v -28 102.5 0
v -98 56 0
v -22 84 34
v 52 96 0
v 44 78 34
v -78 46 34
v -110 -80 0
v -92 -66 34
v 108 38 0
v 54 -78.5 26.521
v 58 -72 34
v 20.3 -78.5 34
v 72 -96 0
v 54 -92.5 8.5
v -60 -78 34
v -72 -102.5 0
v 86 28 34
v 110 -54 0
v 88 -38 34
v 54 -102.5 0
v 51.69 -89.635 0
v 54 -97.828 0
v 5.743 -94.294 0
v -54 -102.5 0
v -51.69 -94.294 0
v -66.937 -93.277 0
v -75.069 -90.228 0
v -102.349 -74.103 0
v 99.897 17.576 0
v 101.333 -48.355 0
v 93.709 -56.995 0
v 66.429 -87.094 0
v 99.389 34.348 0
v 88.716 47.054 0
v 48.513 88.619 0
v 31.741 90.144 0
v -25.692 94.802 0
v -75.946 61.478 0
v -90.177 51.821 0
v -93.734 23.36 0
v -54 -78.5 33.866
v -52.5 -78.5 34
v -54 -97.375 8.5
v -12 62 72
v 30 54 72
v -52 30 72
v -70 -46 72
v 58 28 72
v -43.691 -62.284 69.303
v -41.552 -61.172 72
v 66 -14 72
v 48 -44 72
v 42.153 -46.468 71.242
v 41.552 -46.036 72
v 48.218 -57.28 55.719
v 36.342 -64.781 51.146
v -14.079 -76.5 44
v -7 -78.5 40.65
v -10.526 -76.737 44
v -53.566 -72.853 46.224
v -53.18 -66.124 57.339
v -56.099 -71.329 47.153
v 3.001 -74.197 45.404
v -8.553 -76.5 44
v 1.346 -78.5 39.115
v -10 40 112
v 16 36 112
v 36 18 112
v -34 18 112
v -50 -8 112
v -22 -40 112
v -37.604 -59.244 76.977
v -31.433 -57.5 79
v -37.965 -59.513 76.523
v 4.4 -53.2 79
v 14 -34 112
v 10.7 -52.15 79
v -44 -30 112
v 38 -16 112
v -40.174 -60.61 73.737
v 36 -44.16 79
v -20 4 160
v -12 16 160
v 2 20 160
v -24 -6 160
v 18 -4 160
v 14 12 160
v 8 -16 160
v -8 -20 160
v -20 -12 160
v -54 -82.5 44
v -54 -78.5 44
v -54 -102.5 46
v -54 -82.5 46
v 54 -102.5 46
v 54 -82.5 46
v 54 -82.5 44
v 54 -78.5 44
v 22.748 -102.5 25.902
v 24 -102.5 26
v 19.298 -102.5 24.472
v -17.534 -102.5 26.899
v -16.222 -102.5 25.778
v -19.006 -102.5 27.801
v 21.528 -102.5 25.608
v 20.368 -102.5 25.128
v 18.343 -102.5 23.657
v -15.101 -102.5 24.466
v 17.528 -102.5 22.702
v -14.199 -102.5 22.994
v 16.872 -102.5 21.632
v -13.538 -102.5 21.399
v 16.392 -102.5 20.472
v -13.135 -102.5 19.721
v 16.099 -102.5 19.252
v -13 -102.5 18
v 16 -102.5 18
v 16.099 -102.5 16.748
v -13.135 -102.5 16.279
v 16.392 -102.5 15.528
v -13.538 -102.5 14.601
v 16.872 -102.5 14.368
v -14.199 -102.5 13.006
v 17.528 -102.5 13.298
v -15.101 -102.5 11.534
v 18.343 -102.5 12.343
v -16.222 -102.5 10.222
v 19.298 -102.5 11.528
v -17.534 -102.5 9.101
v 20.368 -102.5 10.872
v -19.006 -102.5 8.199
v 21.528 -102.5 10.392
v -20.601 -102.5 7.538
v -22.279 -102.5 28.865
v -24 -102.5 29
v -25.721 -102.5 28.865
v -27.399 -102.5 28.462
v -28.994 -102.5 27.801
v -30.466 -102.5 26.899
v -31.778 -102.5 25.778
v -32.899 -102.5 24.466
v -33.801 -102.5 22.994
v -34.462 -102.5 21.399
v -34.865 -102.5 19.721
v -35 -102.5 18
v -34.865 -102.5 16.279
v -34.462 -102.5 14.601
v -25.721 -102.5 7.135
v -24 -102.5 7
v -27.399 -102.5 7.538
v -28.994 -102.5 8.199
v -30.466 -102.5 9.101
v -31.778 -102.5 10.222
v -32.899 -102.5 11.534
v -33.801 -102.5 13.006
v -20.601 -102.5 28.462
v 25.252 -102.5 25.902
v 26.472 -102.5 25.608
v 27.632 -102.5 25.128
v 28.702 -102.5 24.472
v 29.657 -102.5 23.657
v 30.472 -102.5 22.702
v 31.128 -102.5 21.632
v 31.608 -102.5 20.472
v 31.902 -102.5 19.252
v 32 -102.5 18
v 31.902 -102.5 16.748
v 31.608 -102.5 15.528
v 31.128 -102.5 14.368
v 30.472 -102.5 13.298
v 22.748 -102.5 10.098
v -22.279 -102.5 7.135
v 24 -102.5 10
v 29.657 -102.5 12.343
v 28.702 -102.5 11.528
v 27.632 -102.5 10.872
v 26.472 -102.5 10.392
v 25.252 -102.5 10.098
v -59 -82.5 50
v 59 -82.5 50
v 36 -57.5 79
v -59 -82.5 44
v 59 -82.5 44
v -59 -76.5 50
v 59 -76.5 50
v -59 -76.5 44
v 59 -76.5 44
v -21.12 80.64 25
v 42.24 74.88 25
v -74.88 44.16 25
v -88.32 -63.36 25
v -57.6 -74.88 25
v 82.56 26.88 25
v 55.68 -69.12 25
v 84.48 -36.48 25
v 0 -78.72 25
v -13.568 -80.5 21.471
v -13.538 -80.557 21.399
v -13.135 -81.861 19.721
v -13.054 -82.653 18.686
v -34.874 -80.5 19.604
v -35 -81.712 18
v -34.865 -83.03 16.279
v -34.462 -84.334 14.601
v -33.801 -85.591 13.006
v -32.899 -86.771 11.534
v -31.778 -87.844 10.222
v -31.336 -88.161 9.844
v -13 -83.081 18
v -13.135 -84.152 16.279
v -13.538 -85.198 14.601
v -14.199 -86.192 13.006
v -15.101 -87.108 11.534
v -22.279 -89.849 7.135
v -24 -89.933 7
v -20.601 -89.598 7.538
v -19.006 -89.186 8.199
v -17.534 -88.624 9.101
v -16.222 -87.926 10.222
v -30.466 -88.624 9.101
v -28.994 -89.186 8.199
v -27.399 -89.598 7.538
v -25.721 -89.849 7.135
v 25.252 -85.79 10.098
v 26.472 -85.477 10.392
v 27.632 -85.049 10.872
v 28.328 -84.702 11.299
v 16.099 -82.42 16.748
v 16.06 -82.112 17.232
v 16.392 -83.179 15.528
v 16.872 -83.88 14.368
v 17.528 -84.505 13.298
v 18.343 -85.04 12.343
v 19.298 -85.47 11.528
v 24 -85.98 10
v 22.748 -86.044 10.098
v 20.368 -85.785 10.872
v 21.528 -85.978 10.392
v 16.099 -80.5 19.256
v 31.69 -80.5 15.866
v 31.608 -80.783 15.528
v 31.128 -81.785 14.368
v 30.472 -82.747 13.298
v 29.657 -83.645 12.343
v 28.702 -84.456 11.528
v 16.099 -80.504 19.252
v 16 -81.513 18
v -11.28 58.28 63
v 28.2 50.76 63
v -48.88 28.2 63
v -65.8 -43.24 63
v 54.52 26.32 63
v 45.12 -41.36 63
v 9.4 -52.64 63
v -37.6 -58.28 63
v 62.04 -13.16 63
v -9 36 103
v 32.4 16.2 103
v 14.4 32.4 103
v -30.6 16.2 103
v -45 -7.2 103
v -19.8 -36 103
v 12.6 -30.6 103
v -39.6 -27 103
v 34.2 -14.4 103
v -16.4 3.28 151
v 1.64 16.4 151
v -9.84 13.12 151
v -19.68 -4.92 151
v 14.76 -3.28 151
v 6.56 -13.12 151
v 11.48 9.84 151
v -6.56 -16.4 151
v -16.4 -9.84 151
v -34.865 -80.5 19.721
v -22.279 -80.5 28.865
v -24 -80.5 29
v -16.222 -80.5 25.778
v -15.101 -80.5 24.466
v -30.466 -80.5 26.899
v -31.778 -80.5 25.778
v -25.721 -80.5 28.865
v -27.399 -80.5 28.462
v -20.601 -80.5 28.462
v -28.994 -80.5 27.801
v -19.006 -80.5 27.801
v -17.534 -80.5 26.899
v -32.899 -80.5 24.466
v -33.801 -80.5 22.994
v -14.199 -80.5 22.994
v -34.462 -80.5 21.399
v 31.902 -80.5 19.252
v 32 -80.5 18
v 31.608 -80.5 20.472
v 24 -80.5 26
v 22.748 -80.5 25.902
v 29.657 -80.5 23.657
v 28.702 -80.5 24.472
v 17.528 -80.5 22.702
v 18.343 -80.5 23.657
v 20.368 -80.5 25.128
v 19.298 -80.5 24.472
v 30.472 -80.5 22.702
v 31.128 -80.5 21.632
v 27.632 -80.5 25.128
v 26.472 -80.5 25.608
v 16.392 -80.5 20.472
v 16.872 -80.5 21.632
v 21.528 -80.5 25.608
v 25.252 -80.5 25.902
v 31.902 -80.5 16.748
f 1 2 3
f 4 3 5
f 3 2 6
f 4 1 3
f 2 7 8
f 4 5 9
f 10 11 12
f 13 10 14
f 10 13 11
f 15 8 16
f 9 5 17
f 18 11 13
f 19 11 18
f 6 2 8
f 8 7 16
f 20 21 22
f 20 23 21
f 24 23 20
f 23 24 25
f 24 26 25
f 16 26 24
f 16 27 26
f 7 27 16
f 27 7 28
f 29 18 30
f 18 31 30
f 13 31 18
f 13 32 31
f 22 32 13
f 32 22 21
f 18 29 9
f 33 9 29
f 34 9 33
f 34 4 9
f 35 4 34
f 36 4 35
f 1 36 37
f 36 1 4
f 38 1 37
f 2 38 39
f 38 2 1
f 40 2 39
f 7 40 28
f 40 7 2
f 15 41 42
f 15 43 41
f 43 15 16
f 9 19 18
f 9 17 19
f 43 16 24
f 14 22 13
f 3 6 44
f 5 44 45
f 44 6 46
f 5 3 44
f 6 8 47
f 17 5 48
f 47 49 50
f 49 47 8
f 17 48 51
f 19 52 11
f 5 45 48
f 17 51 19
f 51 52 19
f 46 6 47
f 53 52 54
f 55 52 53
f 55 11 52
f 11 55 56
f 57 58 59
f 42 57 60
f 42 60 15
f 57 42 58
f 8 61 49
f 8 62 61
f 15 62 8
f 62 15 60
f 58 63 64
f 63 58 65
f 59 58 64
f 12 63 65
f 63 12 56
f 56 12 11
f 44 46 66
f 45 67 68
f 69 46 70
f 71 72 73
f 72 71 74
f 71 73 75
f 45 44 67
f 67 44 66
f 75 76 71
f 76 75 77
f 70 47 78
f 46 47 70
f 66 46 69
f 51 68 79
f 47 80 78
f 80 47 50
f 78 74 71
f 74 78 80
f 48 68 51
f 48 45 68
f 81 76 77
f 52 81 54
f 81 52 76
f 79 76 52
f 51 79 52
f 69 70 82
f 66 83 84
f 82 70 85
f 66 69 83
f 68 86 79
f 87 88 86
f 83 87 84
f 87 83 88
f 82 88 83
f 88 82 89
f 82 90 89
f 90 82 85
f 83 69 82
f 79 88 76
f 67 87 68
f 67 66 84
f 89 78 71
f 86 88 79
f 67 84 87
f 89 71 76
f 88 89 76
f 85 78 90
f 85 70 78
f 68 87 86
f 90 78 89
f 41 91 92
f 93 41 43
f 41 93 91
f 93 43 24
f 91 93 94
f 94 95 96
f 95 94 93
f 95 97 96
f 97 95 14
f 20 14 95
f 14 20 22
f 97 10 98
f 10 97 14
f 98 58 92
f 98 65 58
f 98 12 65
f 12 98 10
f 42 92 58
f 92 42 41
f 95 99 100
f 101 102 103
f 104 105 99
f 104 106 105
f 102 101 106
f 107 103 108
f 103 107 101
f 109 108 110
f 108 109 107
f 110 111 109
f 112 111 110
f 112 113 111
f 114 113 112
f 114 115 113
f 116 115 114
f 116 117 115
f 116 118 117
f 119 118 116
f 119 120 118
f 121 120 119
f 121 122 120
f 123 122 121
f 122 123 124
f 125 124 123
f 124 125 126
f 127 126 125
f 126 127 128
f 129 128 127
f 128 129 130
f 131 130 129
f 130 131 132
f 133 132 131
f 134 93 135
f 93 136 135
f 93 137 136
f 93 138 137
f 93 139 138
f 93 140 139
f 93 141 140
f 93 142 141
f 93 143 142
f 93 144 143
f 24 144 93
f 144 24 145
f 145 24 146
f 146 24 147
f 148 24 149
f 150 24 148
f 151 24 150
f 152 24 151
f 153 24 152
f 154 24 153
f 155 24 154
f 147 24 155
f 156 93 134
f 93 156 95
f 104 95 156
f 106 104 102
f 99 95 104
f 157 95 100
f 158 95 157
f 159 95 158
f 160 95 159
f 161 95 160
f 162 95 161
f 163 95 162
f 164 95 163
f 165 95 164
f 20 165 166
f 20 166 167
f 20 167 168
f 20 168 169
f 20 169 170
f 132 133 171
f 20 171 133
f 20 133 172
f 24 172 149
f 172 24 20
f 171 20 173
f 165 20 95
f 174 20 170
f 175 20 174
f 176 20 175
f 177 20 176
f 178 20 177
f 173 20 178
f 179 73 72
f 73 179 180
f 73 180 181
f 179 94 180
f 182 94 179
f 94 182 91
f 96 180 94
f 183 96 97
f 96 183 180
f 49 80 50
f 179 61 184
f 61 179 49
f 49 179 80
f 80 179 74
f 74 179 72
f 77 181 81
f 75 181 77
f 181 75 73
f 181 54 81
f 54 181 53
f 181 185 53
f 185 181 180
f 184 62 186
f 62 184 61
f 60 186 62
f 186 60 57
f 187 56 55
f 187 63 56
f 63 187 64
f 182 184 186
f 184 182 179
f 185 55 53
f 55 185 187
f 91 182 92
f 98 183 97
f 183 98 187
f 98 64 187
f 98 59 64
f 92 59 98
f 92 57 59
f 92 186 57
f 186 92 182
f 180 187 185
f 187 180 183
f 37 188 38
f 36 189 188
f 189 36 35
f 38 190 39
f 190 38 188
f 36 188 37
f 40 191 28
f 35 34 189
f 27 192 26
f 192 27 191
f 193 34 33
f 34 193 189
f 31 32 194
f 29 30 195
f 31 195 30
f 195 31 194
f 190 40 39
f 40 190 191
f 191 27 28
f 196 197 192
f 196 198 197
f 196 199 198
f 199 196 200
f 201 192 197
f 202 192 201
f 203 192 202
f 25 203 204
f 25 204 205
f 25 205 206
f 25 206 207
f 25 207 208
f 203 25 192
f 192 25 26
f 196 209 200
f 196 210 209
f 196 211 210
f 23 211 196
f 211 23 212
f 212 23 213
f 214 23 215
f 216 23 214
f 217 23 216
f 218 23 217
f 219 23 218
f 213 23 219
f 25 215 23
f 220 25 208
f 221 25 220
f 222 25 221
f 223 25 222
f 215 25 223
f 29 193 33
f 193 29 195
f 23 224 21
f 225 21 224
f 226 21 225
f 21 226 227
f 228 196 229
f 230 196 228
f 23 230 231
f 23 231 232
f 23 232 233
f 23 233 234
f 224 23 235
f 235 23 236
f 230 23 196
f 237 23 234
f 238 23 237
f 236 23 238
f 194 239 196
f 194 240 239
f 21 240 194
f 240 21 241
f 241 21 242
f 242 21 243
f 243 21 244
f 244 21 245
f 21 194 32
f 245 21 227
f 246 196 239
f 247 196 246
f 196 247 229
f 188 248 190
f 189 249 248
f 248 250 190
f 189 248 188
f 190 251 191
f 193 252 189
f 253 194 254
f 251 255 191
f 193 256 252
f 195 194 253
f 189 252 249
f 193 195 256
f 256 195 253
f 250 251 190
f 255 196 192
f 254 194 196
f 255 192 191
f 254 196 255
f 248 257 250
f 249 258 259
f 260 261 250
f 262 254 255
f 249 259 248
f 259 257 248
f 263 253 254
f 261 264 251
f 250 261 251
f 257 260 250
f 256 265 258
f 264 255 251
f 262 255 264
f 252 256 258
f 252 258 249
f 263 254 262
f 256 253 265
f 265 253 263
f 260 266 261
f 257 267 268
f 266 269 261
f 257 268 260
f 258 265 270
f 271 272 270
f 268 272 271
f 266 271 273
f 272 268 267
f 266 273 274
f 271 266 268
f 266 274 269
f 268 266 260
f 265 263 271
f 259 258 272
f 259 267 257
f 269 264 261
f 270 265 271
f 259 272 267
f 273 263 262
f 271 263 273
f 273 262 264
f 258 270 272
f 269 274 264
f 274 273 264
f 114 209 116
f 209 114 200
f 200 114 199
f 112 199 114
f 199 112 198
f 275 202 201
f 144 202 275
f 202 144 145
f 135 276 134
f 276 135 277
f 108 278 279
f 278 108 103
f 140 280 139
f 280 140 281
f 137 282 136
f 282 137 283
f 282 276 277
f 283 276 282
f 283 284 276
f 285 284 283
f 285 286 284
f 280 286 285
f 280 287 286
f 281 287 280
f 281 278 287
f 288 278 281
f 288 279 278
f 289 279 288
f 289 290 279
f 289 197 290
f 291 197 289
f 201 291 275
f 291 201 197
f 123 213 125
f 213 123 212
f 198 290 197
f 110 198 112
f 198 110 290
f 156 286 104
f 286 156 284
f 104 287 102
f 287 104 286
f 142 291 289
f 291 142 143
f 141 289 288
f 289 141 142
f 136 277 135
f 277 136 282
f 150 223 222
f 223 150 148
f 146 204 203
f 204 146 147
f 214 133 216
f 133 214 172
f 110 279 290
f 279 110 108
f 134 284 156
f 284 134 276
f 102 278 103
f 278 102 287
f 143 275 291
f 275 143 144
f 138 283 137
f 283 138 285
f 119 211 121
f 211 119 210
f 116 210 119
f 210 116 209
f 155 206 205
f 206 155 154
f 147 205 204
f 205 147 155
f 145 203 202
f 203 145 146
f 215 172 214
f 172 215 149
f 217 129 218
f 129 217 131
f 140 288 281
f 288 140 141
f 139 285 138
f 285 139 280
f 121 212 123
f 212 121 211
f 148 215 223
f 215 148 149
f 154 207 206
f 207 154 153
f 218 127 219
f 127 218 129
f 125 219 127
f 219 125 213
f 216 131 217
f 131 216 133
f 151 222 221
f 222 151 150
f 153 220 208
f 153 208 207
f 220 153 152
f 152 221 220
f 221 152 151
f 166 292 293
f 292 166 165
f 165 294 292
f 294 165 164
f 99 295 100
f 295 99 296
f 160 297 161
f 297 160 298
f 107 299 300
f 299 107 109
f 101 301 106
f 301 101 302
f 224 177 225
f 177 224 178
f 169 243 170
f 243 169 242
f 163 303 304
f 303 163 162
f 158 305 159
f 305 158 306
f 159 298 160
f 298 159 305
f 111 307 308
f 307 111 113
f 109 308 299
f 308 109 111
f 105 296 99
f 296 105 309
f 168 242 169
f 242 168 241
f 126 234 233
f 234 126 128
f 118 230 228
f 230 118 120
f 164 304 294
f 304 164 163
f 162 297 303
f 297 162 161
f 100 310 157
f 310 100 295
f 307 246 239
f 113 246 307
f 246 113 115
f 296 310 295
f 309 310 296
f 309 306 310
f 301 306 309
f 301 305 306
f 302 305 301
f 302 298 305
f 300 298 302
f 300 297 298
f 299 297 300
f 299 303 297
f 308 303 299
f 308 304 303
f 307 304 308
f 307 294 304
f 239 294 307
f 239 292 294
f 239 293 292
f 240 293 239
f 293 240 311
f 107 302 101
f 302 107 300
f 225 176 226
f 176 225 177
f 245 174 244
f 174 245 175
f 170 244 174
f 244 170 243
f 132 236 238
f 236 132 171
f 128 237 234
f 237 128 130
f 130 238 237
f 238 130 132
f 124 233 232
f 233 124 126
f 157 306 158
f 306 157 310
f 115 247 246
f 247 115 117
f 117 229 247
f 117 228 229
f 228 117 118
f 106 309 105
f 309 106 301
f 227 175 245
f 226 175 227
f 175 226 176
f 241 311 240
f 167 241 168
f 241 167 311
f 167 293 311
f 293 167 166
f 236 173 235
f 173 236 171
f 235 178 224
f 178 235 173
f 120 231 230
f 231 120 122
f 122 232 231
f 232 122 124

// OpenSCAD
// V2 hollow low-poly mountain cover for housing DCC-EX electronics on one HexTrack tile.
// This version uses one continuous faceted shell instead of overlapping cone pieces.

/* [Output] */
show_build_volume = false; // [true, false]
show_hex_tile_footprint = false; // [true, false]

/* [Overall Size] */
base_width = 220; // [120:1:232]
base_depth = 205; // [120:1:232]
mountain_height = 160; // [80:1:220]
wall_thickness = 2.6; // [1.2:0.1:5]
base_rim_height = 5; // [0:0.5:15]

/* [Cable Exits] */
cable_side = "front"; // [front, back, left, right]
mains_hole_diameter = 22; // [10:1:35]
low_voltage_hole_diameter = 16; // [6:1:30]
cable_hole_z = 18; // [8:1:45]
cable_hole_spacing = 48; // [25:1:90]
cable_panel_width = 108; // [70:1:150]
cable_panel_height = 46; // [30:1:75]
cable_panel_depth = 24; // [10:1:45]

/* [Mountain Shape] */
facet_count = 9; // [6:1:14]

/* [Reference] */
hex_flat_to_flat = 248;
printer_volume = 232;

function side_angle(name) =
    name == "front" ? 0 :
    name == "back" ? 180 :
    name == "left" ? -90 : 90;
function scale_profile(profile, sx, sy, z_shift = 0) =
    [for (p = profile) [p[0] * sx, p[1] * sy, p[2] + z_shift]];

base_profile = [
    [-110, -80, 0],
    [-72, -102.5, 0],
    [8, -102.5, 0],
    [72, -96, 0],
    [110, -54, 0],
    [108, 38, 0],
    [52, 96, 0],
    [-28, 102.5, 0],
    [-98, 56, 0]
];

profile_1 = [
    [-92, -66, 34],
    [-60, -78, 34],
    [0, -82, 34],
    [58, -72, 34],
    [88, -38, 34],
    [86, 28, 34],
    [44, 78, 34],
    [-22, 84, 34],
    [-78, 46, 34]
];

profile_2 = [
    [-70, -46, 72],
    [-40, -62, 72],
    [10, -56, 72],
    [48, -44, 72],
    [66, -14, 72],
    [58, 28, 72],
    [30, 54, 72],
    [-12, 62, 72],
    [-52, 30, 72]
];

profile_3 = [
    [-44, -30, 112],
    [-22, -40, 112],
    [14, -34, 112],
    [38, -16, 112],
    [36, 18, 112],
    [16, 36, 112],
    [-10, 40, 112],
    [-34, 18, 112],
    [-50, -8, 112]
];

profile_4 = [
    [-20, -12, mountain_height],
    [-8, -20, mountain_height],
    [8, -16, mountain_height],
    [18, -4, mountain_height],
    [14, 12, mountain_height],
    [2, 20, mountain_height],
    [-12, 16, mountain_height],
    [-20, 4, mountain_height],
    [-24, -6, mountain_height]
];

module profile_poly(profile) {
    polyhedron(
        points = concat(profile, [[0, 0, profile[0][2]]]),
        faces = [
            [for (i = [0 : len(profile) - 1]) i],
            for (i = [0 : len(profile) - 1])
                [len(profile), i, (i + 1) % len(profile)]
        ],
        convexity = 4
    );
}

module shell_from_profiles(profiles) {
    for (i = [0 : len(profiles) - 2])
        hull() {
            profile_poly(profiles[i]);
            profile_poly(profiles[i + 1]);
        }
}

module cable_exit_panel() {
    rotate([0, 0, side_angle(cable_side)])
        translate([0, -base_depth / 2 + cable_panel_depth / 2, cable_panel_height / 2])
            cube([cable_panel_width, cable_panel_depth, cable_panel_height], center = true);
}

module panel_overburden() {
    rotate([0, 0, side_angle(cable_side)])
        hull() {
            translate([0, -base_depth / 2 + cable_panel_depth - 1, cable_panel_height + 1])
                cube([cable_panel_width + 10, 6, 6], center = true);
            translate([0, -base_depth / 2 + 56, 74])
                cube([72, 22, 10], center = true);
        }
}

module mountain_outer() {
    union() {
        shell_from_profiles([base_profile, profile_1, profile_2, profile_3, profile_4]);
        cable_exit_panel();
        panel_overburden();
    }
}

module mountain_inner_cutout() {
    translate([0, 0, -base_rim_height - 4])
        shell_from_profiles([
            scale_profile(base_profile, (base_width - wall_thickness * 2) / base_width, (base_depth - wall_thickness * 2) / base_depth),
            scale_profile(profile_1, 0.96, 0.96),
            scale_profile(profile_2, 0.94, 0.94),
            scale_profile(profile_3, 0.90, 0.90),
            scale_profile(profile_4, 0.82, 0.82)
        ]);
}

module cable_hole(x_offset, diameter) {
    rotate([0, 0, side_angle(cable_side)])
        translate([x_offset, -base_depth / 2 - 3, cable_hole_z])
            rotate([90, 0, 0])
                cylinder(d = diameter, h = cable_panel_depth + 26, center = true, $fn = 40);
}

module cable_holes() {
    cable_hole(-cable_hole_spacing / 2, mains_hole_diameter);
    cable_hole(cable_hole_spacing / 2, low_voltage_hole_diameter);
}

module bottom_opening() {
    translate([0, 0, -base_rim_height - 20])
        cube([base_width * 2, base_depth * 2, 40], center = true);
}

module hollow_mountain_cover() {
    difference() {
        mountain_outer();
        mountain_inner_cutout();
        cable_holes();
        bottom_opening();
    }
}

module hex_tile_footprint() {
    hex_radius = hex_flat_to_flat / sqrt(3);
    points = [for (i = [0:5]) [hex_radius * cos(60 * i), hex_radius * sin(60 * i)]];

    color([0.2, 0.5, 0.9, 0.18])
        translate([0, 0, -0.2])
            linear_extrude(height = 0.2)
                polygon(points);
}

module build_volume_preview() {
    color([1, 0.4, 0.1, 0.12])
        translate([0, 0, printer_volume / 2])
            cube([printer_volume, printer_volume, printer_volume], center = true);
}

if (show_hex_tile_footprint)
    hex_tile_footprint();

if (show_build_volume)
    build_volume_preview();

hollow_mountain_cover();
